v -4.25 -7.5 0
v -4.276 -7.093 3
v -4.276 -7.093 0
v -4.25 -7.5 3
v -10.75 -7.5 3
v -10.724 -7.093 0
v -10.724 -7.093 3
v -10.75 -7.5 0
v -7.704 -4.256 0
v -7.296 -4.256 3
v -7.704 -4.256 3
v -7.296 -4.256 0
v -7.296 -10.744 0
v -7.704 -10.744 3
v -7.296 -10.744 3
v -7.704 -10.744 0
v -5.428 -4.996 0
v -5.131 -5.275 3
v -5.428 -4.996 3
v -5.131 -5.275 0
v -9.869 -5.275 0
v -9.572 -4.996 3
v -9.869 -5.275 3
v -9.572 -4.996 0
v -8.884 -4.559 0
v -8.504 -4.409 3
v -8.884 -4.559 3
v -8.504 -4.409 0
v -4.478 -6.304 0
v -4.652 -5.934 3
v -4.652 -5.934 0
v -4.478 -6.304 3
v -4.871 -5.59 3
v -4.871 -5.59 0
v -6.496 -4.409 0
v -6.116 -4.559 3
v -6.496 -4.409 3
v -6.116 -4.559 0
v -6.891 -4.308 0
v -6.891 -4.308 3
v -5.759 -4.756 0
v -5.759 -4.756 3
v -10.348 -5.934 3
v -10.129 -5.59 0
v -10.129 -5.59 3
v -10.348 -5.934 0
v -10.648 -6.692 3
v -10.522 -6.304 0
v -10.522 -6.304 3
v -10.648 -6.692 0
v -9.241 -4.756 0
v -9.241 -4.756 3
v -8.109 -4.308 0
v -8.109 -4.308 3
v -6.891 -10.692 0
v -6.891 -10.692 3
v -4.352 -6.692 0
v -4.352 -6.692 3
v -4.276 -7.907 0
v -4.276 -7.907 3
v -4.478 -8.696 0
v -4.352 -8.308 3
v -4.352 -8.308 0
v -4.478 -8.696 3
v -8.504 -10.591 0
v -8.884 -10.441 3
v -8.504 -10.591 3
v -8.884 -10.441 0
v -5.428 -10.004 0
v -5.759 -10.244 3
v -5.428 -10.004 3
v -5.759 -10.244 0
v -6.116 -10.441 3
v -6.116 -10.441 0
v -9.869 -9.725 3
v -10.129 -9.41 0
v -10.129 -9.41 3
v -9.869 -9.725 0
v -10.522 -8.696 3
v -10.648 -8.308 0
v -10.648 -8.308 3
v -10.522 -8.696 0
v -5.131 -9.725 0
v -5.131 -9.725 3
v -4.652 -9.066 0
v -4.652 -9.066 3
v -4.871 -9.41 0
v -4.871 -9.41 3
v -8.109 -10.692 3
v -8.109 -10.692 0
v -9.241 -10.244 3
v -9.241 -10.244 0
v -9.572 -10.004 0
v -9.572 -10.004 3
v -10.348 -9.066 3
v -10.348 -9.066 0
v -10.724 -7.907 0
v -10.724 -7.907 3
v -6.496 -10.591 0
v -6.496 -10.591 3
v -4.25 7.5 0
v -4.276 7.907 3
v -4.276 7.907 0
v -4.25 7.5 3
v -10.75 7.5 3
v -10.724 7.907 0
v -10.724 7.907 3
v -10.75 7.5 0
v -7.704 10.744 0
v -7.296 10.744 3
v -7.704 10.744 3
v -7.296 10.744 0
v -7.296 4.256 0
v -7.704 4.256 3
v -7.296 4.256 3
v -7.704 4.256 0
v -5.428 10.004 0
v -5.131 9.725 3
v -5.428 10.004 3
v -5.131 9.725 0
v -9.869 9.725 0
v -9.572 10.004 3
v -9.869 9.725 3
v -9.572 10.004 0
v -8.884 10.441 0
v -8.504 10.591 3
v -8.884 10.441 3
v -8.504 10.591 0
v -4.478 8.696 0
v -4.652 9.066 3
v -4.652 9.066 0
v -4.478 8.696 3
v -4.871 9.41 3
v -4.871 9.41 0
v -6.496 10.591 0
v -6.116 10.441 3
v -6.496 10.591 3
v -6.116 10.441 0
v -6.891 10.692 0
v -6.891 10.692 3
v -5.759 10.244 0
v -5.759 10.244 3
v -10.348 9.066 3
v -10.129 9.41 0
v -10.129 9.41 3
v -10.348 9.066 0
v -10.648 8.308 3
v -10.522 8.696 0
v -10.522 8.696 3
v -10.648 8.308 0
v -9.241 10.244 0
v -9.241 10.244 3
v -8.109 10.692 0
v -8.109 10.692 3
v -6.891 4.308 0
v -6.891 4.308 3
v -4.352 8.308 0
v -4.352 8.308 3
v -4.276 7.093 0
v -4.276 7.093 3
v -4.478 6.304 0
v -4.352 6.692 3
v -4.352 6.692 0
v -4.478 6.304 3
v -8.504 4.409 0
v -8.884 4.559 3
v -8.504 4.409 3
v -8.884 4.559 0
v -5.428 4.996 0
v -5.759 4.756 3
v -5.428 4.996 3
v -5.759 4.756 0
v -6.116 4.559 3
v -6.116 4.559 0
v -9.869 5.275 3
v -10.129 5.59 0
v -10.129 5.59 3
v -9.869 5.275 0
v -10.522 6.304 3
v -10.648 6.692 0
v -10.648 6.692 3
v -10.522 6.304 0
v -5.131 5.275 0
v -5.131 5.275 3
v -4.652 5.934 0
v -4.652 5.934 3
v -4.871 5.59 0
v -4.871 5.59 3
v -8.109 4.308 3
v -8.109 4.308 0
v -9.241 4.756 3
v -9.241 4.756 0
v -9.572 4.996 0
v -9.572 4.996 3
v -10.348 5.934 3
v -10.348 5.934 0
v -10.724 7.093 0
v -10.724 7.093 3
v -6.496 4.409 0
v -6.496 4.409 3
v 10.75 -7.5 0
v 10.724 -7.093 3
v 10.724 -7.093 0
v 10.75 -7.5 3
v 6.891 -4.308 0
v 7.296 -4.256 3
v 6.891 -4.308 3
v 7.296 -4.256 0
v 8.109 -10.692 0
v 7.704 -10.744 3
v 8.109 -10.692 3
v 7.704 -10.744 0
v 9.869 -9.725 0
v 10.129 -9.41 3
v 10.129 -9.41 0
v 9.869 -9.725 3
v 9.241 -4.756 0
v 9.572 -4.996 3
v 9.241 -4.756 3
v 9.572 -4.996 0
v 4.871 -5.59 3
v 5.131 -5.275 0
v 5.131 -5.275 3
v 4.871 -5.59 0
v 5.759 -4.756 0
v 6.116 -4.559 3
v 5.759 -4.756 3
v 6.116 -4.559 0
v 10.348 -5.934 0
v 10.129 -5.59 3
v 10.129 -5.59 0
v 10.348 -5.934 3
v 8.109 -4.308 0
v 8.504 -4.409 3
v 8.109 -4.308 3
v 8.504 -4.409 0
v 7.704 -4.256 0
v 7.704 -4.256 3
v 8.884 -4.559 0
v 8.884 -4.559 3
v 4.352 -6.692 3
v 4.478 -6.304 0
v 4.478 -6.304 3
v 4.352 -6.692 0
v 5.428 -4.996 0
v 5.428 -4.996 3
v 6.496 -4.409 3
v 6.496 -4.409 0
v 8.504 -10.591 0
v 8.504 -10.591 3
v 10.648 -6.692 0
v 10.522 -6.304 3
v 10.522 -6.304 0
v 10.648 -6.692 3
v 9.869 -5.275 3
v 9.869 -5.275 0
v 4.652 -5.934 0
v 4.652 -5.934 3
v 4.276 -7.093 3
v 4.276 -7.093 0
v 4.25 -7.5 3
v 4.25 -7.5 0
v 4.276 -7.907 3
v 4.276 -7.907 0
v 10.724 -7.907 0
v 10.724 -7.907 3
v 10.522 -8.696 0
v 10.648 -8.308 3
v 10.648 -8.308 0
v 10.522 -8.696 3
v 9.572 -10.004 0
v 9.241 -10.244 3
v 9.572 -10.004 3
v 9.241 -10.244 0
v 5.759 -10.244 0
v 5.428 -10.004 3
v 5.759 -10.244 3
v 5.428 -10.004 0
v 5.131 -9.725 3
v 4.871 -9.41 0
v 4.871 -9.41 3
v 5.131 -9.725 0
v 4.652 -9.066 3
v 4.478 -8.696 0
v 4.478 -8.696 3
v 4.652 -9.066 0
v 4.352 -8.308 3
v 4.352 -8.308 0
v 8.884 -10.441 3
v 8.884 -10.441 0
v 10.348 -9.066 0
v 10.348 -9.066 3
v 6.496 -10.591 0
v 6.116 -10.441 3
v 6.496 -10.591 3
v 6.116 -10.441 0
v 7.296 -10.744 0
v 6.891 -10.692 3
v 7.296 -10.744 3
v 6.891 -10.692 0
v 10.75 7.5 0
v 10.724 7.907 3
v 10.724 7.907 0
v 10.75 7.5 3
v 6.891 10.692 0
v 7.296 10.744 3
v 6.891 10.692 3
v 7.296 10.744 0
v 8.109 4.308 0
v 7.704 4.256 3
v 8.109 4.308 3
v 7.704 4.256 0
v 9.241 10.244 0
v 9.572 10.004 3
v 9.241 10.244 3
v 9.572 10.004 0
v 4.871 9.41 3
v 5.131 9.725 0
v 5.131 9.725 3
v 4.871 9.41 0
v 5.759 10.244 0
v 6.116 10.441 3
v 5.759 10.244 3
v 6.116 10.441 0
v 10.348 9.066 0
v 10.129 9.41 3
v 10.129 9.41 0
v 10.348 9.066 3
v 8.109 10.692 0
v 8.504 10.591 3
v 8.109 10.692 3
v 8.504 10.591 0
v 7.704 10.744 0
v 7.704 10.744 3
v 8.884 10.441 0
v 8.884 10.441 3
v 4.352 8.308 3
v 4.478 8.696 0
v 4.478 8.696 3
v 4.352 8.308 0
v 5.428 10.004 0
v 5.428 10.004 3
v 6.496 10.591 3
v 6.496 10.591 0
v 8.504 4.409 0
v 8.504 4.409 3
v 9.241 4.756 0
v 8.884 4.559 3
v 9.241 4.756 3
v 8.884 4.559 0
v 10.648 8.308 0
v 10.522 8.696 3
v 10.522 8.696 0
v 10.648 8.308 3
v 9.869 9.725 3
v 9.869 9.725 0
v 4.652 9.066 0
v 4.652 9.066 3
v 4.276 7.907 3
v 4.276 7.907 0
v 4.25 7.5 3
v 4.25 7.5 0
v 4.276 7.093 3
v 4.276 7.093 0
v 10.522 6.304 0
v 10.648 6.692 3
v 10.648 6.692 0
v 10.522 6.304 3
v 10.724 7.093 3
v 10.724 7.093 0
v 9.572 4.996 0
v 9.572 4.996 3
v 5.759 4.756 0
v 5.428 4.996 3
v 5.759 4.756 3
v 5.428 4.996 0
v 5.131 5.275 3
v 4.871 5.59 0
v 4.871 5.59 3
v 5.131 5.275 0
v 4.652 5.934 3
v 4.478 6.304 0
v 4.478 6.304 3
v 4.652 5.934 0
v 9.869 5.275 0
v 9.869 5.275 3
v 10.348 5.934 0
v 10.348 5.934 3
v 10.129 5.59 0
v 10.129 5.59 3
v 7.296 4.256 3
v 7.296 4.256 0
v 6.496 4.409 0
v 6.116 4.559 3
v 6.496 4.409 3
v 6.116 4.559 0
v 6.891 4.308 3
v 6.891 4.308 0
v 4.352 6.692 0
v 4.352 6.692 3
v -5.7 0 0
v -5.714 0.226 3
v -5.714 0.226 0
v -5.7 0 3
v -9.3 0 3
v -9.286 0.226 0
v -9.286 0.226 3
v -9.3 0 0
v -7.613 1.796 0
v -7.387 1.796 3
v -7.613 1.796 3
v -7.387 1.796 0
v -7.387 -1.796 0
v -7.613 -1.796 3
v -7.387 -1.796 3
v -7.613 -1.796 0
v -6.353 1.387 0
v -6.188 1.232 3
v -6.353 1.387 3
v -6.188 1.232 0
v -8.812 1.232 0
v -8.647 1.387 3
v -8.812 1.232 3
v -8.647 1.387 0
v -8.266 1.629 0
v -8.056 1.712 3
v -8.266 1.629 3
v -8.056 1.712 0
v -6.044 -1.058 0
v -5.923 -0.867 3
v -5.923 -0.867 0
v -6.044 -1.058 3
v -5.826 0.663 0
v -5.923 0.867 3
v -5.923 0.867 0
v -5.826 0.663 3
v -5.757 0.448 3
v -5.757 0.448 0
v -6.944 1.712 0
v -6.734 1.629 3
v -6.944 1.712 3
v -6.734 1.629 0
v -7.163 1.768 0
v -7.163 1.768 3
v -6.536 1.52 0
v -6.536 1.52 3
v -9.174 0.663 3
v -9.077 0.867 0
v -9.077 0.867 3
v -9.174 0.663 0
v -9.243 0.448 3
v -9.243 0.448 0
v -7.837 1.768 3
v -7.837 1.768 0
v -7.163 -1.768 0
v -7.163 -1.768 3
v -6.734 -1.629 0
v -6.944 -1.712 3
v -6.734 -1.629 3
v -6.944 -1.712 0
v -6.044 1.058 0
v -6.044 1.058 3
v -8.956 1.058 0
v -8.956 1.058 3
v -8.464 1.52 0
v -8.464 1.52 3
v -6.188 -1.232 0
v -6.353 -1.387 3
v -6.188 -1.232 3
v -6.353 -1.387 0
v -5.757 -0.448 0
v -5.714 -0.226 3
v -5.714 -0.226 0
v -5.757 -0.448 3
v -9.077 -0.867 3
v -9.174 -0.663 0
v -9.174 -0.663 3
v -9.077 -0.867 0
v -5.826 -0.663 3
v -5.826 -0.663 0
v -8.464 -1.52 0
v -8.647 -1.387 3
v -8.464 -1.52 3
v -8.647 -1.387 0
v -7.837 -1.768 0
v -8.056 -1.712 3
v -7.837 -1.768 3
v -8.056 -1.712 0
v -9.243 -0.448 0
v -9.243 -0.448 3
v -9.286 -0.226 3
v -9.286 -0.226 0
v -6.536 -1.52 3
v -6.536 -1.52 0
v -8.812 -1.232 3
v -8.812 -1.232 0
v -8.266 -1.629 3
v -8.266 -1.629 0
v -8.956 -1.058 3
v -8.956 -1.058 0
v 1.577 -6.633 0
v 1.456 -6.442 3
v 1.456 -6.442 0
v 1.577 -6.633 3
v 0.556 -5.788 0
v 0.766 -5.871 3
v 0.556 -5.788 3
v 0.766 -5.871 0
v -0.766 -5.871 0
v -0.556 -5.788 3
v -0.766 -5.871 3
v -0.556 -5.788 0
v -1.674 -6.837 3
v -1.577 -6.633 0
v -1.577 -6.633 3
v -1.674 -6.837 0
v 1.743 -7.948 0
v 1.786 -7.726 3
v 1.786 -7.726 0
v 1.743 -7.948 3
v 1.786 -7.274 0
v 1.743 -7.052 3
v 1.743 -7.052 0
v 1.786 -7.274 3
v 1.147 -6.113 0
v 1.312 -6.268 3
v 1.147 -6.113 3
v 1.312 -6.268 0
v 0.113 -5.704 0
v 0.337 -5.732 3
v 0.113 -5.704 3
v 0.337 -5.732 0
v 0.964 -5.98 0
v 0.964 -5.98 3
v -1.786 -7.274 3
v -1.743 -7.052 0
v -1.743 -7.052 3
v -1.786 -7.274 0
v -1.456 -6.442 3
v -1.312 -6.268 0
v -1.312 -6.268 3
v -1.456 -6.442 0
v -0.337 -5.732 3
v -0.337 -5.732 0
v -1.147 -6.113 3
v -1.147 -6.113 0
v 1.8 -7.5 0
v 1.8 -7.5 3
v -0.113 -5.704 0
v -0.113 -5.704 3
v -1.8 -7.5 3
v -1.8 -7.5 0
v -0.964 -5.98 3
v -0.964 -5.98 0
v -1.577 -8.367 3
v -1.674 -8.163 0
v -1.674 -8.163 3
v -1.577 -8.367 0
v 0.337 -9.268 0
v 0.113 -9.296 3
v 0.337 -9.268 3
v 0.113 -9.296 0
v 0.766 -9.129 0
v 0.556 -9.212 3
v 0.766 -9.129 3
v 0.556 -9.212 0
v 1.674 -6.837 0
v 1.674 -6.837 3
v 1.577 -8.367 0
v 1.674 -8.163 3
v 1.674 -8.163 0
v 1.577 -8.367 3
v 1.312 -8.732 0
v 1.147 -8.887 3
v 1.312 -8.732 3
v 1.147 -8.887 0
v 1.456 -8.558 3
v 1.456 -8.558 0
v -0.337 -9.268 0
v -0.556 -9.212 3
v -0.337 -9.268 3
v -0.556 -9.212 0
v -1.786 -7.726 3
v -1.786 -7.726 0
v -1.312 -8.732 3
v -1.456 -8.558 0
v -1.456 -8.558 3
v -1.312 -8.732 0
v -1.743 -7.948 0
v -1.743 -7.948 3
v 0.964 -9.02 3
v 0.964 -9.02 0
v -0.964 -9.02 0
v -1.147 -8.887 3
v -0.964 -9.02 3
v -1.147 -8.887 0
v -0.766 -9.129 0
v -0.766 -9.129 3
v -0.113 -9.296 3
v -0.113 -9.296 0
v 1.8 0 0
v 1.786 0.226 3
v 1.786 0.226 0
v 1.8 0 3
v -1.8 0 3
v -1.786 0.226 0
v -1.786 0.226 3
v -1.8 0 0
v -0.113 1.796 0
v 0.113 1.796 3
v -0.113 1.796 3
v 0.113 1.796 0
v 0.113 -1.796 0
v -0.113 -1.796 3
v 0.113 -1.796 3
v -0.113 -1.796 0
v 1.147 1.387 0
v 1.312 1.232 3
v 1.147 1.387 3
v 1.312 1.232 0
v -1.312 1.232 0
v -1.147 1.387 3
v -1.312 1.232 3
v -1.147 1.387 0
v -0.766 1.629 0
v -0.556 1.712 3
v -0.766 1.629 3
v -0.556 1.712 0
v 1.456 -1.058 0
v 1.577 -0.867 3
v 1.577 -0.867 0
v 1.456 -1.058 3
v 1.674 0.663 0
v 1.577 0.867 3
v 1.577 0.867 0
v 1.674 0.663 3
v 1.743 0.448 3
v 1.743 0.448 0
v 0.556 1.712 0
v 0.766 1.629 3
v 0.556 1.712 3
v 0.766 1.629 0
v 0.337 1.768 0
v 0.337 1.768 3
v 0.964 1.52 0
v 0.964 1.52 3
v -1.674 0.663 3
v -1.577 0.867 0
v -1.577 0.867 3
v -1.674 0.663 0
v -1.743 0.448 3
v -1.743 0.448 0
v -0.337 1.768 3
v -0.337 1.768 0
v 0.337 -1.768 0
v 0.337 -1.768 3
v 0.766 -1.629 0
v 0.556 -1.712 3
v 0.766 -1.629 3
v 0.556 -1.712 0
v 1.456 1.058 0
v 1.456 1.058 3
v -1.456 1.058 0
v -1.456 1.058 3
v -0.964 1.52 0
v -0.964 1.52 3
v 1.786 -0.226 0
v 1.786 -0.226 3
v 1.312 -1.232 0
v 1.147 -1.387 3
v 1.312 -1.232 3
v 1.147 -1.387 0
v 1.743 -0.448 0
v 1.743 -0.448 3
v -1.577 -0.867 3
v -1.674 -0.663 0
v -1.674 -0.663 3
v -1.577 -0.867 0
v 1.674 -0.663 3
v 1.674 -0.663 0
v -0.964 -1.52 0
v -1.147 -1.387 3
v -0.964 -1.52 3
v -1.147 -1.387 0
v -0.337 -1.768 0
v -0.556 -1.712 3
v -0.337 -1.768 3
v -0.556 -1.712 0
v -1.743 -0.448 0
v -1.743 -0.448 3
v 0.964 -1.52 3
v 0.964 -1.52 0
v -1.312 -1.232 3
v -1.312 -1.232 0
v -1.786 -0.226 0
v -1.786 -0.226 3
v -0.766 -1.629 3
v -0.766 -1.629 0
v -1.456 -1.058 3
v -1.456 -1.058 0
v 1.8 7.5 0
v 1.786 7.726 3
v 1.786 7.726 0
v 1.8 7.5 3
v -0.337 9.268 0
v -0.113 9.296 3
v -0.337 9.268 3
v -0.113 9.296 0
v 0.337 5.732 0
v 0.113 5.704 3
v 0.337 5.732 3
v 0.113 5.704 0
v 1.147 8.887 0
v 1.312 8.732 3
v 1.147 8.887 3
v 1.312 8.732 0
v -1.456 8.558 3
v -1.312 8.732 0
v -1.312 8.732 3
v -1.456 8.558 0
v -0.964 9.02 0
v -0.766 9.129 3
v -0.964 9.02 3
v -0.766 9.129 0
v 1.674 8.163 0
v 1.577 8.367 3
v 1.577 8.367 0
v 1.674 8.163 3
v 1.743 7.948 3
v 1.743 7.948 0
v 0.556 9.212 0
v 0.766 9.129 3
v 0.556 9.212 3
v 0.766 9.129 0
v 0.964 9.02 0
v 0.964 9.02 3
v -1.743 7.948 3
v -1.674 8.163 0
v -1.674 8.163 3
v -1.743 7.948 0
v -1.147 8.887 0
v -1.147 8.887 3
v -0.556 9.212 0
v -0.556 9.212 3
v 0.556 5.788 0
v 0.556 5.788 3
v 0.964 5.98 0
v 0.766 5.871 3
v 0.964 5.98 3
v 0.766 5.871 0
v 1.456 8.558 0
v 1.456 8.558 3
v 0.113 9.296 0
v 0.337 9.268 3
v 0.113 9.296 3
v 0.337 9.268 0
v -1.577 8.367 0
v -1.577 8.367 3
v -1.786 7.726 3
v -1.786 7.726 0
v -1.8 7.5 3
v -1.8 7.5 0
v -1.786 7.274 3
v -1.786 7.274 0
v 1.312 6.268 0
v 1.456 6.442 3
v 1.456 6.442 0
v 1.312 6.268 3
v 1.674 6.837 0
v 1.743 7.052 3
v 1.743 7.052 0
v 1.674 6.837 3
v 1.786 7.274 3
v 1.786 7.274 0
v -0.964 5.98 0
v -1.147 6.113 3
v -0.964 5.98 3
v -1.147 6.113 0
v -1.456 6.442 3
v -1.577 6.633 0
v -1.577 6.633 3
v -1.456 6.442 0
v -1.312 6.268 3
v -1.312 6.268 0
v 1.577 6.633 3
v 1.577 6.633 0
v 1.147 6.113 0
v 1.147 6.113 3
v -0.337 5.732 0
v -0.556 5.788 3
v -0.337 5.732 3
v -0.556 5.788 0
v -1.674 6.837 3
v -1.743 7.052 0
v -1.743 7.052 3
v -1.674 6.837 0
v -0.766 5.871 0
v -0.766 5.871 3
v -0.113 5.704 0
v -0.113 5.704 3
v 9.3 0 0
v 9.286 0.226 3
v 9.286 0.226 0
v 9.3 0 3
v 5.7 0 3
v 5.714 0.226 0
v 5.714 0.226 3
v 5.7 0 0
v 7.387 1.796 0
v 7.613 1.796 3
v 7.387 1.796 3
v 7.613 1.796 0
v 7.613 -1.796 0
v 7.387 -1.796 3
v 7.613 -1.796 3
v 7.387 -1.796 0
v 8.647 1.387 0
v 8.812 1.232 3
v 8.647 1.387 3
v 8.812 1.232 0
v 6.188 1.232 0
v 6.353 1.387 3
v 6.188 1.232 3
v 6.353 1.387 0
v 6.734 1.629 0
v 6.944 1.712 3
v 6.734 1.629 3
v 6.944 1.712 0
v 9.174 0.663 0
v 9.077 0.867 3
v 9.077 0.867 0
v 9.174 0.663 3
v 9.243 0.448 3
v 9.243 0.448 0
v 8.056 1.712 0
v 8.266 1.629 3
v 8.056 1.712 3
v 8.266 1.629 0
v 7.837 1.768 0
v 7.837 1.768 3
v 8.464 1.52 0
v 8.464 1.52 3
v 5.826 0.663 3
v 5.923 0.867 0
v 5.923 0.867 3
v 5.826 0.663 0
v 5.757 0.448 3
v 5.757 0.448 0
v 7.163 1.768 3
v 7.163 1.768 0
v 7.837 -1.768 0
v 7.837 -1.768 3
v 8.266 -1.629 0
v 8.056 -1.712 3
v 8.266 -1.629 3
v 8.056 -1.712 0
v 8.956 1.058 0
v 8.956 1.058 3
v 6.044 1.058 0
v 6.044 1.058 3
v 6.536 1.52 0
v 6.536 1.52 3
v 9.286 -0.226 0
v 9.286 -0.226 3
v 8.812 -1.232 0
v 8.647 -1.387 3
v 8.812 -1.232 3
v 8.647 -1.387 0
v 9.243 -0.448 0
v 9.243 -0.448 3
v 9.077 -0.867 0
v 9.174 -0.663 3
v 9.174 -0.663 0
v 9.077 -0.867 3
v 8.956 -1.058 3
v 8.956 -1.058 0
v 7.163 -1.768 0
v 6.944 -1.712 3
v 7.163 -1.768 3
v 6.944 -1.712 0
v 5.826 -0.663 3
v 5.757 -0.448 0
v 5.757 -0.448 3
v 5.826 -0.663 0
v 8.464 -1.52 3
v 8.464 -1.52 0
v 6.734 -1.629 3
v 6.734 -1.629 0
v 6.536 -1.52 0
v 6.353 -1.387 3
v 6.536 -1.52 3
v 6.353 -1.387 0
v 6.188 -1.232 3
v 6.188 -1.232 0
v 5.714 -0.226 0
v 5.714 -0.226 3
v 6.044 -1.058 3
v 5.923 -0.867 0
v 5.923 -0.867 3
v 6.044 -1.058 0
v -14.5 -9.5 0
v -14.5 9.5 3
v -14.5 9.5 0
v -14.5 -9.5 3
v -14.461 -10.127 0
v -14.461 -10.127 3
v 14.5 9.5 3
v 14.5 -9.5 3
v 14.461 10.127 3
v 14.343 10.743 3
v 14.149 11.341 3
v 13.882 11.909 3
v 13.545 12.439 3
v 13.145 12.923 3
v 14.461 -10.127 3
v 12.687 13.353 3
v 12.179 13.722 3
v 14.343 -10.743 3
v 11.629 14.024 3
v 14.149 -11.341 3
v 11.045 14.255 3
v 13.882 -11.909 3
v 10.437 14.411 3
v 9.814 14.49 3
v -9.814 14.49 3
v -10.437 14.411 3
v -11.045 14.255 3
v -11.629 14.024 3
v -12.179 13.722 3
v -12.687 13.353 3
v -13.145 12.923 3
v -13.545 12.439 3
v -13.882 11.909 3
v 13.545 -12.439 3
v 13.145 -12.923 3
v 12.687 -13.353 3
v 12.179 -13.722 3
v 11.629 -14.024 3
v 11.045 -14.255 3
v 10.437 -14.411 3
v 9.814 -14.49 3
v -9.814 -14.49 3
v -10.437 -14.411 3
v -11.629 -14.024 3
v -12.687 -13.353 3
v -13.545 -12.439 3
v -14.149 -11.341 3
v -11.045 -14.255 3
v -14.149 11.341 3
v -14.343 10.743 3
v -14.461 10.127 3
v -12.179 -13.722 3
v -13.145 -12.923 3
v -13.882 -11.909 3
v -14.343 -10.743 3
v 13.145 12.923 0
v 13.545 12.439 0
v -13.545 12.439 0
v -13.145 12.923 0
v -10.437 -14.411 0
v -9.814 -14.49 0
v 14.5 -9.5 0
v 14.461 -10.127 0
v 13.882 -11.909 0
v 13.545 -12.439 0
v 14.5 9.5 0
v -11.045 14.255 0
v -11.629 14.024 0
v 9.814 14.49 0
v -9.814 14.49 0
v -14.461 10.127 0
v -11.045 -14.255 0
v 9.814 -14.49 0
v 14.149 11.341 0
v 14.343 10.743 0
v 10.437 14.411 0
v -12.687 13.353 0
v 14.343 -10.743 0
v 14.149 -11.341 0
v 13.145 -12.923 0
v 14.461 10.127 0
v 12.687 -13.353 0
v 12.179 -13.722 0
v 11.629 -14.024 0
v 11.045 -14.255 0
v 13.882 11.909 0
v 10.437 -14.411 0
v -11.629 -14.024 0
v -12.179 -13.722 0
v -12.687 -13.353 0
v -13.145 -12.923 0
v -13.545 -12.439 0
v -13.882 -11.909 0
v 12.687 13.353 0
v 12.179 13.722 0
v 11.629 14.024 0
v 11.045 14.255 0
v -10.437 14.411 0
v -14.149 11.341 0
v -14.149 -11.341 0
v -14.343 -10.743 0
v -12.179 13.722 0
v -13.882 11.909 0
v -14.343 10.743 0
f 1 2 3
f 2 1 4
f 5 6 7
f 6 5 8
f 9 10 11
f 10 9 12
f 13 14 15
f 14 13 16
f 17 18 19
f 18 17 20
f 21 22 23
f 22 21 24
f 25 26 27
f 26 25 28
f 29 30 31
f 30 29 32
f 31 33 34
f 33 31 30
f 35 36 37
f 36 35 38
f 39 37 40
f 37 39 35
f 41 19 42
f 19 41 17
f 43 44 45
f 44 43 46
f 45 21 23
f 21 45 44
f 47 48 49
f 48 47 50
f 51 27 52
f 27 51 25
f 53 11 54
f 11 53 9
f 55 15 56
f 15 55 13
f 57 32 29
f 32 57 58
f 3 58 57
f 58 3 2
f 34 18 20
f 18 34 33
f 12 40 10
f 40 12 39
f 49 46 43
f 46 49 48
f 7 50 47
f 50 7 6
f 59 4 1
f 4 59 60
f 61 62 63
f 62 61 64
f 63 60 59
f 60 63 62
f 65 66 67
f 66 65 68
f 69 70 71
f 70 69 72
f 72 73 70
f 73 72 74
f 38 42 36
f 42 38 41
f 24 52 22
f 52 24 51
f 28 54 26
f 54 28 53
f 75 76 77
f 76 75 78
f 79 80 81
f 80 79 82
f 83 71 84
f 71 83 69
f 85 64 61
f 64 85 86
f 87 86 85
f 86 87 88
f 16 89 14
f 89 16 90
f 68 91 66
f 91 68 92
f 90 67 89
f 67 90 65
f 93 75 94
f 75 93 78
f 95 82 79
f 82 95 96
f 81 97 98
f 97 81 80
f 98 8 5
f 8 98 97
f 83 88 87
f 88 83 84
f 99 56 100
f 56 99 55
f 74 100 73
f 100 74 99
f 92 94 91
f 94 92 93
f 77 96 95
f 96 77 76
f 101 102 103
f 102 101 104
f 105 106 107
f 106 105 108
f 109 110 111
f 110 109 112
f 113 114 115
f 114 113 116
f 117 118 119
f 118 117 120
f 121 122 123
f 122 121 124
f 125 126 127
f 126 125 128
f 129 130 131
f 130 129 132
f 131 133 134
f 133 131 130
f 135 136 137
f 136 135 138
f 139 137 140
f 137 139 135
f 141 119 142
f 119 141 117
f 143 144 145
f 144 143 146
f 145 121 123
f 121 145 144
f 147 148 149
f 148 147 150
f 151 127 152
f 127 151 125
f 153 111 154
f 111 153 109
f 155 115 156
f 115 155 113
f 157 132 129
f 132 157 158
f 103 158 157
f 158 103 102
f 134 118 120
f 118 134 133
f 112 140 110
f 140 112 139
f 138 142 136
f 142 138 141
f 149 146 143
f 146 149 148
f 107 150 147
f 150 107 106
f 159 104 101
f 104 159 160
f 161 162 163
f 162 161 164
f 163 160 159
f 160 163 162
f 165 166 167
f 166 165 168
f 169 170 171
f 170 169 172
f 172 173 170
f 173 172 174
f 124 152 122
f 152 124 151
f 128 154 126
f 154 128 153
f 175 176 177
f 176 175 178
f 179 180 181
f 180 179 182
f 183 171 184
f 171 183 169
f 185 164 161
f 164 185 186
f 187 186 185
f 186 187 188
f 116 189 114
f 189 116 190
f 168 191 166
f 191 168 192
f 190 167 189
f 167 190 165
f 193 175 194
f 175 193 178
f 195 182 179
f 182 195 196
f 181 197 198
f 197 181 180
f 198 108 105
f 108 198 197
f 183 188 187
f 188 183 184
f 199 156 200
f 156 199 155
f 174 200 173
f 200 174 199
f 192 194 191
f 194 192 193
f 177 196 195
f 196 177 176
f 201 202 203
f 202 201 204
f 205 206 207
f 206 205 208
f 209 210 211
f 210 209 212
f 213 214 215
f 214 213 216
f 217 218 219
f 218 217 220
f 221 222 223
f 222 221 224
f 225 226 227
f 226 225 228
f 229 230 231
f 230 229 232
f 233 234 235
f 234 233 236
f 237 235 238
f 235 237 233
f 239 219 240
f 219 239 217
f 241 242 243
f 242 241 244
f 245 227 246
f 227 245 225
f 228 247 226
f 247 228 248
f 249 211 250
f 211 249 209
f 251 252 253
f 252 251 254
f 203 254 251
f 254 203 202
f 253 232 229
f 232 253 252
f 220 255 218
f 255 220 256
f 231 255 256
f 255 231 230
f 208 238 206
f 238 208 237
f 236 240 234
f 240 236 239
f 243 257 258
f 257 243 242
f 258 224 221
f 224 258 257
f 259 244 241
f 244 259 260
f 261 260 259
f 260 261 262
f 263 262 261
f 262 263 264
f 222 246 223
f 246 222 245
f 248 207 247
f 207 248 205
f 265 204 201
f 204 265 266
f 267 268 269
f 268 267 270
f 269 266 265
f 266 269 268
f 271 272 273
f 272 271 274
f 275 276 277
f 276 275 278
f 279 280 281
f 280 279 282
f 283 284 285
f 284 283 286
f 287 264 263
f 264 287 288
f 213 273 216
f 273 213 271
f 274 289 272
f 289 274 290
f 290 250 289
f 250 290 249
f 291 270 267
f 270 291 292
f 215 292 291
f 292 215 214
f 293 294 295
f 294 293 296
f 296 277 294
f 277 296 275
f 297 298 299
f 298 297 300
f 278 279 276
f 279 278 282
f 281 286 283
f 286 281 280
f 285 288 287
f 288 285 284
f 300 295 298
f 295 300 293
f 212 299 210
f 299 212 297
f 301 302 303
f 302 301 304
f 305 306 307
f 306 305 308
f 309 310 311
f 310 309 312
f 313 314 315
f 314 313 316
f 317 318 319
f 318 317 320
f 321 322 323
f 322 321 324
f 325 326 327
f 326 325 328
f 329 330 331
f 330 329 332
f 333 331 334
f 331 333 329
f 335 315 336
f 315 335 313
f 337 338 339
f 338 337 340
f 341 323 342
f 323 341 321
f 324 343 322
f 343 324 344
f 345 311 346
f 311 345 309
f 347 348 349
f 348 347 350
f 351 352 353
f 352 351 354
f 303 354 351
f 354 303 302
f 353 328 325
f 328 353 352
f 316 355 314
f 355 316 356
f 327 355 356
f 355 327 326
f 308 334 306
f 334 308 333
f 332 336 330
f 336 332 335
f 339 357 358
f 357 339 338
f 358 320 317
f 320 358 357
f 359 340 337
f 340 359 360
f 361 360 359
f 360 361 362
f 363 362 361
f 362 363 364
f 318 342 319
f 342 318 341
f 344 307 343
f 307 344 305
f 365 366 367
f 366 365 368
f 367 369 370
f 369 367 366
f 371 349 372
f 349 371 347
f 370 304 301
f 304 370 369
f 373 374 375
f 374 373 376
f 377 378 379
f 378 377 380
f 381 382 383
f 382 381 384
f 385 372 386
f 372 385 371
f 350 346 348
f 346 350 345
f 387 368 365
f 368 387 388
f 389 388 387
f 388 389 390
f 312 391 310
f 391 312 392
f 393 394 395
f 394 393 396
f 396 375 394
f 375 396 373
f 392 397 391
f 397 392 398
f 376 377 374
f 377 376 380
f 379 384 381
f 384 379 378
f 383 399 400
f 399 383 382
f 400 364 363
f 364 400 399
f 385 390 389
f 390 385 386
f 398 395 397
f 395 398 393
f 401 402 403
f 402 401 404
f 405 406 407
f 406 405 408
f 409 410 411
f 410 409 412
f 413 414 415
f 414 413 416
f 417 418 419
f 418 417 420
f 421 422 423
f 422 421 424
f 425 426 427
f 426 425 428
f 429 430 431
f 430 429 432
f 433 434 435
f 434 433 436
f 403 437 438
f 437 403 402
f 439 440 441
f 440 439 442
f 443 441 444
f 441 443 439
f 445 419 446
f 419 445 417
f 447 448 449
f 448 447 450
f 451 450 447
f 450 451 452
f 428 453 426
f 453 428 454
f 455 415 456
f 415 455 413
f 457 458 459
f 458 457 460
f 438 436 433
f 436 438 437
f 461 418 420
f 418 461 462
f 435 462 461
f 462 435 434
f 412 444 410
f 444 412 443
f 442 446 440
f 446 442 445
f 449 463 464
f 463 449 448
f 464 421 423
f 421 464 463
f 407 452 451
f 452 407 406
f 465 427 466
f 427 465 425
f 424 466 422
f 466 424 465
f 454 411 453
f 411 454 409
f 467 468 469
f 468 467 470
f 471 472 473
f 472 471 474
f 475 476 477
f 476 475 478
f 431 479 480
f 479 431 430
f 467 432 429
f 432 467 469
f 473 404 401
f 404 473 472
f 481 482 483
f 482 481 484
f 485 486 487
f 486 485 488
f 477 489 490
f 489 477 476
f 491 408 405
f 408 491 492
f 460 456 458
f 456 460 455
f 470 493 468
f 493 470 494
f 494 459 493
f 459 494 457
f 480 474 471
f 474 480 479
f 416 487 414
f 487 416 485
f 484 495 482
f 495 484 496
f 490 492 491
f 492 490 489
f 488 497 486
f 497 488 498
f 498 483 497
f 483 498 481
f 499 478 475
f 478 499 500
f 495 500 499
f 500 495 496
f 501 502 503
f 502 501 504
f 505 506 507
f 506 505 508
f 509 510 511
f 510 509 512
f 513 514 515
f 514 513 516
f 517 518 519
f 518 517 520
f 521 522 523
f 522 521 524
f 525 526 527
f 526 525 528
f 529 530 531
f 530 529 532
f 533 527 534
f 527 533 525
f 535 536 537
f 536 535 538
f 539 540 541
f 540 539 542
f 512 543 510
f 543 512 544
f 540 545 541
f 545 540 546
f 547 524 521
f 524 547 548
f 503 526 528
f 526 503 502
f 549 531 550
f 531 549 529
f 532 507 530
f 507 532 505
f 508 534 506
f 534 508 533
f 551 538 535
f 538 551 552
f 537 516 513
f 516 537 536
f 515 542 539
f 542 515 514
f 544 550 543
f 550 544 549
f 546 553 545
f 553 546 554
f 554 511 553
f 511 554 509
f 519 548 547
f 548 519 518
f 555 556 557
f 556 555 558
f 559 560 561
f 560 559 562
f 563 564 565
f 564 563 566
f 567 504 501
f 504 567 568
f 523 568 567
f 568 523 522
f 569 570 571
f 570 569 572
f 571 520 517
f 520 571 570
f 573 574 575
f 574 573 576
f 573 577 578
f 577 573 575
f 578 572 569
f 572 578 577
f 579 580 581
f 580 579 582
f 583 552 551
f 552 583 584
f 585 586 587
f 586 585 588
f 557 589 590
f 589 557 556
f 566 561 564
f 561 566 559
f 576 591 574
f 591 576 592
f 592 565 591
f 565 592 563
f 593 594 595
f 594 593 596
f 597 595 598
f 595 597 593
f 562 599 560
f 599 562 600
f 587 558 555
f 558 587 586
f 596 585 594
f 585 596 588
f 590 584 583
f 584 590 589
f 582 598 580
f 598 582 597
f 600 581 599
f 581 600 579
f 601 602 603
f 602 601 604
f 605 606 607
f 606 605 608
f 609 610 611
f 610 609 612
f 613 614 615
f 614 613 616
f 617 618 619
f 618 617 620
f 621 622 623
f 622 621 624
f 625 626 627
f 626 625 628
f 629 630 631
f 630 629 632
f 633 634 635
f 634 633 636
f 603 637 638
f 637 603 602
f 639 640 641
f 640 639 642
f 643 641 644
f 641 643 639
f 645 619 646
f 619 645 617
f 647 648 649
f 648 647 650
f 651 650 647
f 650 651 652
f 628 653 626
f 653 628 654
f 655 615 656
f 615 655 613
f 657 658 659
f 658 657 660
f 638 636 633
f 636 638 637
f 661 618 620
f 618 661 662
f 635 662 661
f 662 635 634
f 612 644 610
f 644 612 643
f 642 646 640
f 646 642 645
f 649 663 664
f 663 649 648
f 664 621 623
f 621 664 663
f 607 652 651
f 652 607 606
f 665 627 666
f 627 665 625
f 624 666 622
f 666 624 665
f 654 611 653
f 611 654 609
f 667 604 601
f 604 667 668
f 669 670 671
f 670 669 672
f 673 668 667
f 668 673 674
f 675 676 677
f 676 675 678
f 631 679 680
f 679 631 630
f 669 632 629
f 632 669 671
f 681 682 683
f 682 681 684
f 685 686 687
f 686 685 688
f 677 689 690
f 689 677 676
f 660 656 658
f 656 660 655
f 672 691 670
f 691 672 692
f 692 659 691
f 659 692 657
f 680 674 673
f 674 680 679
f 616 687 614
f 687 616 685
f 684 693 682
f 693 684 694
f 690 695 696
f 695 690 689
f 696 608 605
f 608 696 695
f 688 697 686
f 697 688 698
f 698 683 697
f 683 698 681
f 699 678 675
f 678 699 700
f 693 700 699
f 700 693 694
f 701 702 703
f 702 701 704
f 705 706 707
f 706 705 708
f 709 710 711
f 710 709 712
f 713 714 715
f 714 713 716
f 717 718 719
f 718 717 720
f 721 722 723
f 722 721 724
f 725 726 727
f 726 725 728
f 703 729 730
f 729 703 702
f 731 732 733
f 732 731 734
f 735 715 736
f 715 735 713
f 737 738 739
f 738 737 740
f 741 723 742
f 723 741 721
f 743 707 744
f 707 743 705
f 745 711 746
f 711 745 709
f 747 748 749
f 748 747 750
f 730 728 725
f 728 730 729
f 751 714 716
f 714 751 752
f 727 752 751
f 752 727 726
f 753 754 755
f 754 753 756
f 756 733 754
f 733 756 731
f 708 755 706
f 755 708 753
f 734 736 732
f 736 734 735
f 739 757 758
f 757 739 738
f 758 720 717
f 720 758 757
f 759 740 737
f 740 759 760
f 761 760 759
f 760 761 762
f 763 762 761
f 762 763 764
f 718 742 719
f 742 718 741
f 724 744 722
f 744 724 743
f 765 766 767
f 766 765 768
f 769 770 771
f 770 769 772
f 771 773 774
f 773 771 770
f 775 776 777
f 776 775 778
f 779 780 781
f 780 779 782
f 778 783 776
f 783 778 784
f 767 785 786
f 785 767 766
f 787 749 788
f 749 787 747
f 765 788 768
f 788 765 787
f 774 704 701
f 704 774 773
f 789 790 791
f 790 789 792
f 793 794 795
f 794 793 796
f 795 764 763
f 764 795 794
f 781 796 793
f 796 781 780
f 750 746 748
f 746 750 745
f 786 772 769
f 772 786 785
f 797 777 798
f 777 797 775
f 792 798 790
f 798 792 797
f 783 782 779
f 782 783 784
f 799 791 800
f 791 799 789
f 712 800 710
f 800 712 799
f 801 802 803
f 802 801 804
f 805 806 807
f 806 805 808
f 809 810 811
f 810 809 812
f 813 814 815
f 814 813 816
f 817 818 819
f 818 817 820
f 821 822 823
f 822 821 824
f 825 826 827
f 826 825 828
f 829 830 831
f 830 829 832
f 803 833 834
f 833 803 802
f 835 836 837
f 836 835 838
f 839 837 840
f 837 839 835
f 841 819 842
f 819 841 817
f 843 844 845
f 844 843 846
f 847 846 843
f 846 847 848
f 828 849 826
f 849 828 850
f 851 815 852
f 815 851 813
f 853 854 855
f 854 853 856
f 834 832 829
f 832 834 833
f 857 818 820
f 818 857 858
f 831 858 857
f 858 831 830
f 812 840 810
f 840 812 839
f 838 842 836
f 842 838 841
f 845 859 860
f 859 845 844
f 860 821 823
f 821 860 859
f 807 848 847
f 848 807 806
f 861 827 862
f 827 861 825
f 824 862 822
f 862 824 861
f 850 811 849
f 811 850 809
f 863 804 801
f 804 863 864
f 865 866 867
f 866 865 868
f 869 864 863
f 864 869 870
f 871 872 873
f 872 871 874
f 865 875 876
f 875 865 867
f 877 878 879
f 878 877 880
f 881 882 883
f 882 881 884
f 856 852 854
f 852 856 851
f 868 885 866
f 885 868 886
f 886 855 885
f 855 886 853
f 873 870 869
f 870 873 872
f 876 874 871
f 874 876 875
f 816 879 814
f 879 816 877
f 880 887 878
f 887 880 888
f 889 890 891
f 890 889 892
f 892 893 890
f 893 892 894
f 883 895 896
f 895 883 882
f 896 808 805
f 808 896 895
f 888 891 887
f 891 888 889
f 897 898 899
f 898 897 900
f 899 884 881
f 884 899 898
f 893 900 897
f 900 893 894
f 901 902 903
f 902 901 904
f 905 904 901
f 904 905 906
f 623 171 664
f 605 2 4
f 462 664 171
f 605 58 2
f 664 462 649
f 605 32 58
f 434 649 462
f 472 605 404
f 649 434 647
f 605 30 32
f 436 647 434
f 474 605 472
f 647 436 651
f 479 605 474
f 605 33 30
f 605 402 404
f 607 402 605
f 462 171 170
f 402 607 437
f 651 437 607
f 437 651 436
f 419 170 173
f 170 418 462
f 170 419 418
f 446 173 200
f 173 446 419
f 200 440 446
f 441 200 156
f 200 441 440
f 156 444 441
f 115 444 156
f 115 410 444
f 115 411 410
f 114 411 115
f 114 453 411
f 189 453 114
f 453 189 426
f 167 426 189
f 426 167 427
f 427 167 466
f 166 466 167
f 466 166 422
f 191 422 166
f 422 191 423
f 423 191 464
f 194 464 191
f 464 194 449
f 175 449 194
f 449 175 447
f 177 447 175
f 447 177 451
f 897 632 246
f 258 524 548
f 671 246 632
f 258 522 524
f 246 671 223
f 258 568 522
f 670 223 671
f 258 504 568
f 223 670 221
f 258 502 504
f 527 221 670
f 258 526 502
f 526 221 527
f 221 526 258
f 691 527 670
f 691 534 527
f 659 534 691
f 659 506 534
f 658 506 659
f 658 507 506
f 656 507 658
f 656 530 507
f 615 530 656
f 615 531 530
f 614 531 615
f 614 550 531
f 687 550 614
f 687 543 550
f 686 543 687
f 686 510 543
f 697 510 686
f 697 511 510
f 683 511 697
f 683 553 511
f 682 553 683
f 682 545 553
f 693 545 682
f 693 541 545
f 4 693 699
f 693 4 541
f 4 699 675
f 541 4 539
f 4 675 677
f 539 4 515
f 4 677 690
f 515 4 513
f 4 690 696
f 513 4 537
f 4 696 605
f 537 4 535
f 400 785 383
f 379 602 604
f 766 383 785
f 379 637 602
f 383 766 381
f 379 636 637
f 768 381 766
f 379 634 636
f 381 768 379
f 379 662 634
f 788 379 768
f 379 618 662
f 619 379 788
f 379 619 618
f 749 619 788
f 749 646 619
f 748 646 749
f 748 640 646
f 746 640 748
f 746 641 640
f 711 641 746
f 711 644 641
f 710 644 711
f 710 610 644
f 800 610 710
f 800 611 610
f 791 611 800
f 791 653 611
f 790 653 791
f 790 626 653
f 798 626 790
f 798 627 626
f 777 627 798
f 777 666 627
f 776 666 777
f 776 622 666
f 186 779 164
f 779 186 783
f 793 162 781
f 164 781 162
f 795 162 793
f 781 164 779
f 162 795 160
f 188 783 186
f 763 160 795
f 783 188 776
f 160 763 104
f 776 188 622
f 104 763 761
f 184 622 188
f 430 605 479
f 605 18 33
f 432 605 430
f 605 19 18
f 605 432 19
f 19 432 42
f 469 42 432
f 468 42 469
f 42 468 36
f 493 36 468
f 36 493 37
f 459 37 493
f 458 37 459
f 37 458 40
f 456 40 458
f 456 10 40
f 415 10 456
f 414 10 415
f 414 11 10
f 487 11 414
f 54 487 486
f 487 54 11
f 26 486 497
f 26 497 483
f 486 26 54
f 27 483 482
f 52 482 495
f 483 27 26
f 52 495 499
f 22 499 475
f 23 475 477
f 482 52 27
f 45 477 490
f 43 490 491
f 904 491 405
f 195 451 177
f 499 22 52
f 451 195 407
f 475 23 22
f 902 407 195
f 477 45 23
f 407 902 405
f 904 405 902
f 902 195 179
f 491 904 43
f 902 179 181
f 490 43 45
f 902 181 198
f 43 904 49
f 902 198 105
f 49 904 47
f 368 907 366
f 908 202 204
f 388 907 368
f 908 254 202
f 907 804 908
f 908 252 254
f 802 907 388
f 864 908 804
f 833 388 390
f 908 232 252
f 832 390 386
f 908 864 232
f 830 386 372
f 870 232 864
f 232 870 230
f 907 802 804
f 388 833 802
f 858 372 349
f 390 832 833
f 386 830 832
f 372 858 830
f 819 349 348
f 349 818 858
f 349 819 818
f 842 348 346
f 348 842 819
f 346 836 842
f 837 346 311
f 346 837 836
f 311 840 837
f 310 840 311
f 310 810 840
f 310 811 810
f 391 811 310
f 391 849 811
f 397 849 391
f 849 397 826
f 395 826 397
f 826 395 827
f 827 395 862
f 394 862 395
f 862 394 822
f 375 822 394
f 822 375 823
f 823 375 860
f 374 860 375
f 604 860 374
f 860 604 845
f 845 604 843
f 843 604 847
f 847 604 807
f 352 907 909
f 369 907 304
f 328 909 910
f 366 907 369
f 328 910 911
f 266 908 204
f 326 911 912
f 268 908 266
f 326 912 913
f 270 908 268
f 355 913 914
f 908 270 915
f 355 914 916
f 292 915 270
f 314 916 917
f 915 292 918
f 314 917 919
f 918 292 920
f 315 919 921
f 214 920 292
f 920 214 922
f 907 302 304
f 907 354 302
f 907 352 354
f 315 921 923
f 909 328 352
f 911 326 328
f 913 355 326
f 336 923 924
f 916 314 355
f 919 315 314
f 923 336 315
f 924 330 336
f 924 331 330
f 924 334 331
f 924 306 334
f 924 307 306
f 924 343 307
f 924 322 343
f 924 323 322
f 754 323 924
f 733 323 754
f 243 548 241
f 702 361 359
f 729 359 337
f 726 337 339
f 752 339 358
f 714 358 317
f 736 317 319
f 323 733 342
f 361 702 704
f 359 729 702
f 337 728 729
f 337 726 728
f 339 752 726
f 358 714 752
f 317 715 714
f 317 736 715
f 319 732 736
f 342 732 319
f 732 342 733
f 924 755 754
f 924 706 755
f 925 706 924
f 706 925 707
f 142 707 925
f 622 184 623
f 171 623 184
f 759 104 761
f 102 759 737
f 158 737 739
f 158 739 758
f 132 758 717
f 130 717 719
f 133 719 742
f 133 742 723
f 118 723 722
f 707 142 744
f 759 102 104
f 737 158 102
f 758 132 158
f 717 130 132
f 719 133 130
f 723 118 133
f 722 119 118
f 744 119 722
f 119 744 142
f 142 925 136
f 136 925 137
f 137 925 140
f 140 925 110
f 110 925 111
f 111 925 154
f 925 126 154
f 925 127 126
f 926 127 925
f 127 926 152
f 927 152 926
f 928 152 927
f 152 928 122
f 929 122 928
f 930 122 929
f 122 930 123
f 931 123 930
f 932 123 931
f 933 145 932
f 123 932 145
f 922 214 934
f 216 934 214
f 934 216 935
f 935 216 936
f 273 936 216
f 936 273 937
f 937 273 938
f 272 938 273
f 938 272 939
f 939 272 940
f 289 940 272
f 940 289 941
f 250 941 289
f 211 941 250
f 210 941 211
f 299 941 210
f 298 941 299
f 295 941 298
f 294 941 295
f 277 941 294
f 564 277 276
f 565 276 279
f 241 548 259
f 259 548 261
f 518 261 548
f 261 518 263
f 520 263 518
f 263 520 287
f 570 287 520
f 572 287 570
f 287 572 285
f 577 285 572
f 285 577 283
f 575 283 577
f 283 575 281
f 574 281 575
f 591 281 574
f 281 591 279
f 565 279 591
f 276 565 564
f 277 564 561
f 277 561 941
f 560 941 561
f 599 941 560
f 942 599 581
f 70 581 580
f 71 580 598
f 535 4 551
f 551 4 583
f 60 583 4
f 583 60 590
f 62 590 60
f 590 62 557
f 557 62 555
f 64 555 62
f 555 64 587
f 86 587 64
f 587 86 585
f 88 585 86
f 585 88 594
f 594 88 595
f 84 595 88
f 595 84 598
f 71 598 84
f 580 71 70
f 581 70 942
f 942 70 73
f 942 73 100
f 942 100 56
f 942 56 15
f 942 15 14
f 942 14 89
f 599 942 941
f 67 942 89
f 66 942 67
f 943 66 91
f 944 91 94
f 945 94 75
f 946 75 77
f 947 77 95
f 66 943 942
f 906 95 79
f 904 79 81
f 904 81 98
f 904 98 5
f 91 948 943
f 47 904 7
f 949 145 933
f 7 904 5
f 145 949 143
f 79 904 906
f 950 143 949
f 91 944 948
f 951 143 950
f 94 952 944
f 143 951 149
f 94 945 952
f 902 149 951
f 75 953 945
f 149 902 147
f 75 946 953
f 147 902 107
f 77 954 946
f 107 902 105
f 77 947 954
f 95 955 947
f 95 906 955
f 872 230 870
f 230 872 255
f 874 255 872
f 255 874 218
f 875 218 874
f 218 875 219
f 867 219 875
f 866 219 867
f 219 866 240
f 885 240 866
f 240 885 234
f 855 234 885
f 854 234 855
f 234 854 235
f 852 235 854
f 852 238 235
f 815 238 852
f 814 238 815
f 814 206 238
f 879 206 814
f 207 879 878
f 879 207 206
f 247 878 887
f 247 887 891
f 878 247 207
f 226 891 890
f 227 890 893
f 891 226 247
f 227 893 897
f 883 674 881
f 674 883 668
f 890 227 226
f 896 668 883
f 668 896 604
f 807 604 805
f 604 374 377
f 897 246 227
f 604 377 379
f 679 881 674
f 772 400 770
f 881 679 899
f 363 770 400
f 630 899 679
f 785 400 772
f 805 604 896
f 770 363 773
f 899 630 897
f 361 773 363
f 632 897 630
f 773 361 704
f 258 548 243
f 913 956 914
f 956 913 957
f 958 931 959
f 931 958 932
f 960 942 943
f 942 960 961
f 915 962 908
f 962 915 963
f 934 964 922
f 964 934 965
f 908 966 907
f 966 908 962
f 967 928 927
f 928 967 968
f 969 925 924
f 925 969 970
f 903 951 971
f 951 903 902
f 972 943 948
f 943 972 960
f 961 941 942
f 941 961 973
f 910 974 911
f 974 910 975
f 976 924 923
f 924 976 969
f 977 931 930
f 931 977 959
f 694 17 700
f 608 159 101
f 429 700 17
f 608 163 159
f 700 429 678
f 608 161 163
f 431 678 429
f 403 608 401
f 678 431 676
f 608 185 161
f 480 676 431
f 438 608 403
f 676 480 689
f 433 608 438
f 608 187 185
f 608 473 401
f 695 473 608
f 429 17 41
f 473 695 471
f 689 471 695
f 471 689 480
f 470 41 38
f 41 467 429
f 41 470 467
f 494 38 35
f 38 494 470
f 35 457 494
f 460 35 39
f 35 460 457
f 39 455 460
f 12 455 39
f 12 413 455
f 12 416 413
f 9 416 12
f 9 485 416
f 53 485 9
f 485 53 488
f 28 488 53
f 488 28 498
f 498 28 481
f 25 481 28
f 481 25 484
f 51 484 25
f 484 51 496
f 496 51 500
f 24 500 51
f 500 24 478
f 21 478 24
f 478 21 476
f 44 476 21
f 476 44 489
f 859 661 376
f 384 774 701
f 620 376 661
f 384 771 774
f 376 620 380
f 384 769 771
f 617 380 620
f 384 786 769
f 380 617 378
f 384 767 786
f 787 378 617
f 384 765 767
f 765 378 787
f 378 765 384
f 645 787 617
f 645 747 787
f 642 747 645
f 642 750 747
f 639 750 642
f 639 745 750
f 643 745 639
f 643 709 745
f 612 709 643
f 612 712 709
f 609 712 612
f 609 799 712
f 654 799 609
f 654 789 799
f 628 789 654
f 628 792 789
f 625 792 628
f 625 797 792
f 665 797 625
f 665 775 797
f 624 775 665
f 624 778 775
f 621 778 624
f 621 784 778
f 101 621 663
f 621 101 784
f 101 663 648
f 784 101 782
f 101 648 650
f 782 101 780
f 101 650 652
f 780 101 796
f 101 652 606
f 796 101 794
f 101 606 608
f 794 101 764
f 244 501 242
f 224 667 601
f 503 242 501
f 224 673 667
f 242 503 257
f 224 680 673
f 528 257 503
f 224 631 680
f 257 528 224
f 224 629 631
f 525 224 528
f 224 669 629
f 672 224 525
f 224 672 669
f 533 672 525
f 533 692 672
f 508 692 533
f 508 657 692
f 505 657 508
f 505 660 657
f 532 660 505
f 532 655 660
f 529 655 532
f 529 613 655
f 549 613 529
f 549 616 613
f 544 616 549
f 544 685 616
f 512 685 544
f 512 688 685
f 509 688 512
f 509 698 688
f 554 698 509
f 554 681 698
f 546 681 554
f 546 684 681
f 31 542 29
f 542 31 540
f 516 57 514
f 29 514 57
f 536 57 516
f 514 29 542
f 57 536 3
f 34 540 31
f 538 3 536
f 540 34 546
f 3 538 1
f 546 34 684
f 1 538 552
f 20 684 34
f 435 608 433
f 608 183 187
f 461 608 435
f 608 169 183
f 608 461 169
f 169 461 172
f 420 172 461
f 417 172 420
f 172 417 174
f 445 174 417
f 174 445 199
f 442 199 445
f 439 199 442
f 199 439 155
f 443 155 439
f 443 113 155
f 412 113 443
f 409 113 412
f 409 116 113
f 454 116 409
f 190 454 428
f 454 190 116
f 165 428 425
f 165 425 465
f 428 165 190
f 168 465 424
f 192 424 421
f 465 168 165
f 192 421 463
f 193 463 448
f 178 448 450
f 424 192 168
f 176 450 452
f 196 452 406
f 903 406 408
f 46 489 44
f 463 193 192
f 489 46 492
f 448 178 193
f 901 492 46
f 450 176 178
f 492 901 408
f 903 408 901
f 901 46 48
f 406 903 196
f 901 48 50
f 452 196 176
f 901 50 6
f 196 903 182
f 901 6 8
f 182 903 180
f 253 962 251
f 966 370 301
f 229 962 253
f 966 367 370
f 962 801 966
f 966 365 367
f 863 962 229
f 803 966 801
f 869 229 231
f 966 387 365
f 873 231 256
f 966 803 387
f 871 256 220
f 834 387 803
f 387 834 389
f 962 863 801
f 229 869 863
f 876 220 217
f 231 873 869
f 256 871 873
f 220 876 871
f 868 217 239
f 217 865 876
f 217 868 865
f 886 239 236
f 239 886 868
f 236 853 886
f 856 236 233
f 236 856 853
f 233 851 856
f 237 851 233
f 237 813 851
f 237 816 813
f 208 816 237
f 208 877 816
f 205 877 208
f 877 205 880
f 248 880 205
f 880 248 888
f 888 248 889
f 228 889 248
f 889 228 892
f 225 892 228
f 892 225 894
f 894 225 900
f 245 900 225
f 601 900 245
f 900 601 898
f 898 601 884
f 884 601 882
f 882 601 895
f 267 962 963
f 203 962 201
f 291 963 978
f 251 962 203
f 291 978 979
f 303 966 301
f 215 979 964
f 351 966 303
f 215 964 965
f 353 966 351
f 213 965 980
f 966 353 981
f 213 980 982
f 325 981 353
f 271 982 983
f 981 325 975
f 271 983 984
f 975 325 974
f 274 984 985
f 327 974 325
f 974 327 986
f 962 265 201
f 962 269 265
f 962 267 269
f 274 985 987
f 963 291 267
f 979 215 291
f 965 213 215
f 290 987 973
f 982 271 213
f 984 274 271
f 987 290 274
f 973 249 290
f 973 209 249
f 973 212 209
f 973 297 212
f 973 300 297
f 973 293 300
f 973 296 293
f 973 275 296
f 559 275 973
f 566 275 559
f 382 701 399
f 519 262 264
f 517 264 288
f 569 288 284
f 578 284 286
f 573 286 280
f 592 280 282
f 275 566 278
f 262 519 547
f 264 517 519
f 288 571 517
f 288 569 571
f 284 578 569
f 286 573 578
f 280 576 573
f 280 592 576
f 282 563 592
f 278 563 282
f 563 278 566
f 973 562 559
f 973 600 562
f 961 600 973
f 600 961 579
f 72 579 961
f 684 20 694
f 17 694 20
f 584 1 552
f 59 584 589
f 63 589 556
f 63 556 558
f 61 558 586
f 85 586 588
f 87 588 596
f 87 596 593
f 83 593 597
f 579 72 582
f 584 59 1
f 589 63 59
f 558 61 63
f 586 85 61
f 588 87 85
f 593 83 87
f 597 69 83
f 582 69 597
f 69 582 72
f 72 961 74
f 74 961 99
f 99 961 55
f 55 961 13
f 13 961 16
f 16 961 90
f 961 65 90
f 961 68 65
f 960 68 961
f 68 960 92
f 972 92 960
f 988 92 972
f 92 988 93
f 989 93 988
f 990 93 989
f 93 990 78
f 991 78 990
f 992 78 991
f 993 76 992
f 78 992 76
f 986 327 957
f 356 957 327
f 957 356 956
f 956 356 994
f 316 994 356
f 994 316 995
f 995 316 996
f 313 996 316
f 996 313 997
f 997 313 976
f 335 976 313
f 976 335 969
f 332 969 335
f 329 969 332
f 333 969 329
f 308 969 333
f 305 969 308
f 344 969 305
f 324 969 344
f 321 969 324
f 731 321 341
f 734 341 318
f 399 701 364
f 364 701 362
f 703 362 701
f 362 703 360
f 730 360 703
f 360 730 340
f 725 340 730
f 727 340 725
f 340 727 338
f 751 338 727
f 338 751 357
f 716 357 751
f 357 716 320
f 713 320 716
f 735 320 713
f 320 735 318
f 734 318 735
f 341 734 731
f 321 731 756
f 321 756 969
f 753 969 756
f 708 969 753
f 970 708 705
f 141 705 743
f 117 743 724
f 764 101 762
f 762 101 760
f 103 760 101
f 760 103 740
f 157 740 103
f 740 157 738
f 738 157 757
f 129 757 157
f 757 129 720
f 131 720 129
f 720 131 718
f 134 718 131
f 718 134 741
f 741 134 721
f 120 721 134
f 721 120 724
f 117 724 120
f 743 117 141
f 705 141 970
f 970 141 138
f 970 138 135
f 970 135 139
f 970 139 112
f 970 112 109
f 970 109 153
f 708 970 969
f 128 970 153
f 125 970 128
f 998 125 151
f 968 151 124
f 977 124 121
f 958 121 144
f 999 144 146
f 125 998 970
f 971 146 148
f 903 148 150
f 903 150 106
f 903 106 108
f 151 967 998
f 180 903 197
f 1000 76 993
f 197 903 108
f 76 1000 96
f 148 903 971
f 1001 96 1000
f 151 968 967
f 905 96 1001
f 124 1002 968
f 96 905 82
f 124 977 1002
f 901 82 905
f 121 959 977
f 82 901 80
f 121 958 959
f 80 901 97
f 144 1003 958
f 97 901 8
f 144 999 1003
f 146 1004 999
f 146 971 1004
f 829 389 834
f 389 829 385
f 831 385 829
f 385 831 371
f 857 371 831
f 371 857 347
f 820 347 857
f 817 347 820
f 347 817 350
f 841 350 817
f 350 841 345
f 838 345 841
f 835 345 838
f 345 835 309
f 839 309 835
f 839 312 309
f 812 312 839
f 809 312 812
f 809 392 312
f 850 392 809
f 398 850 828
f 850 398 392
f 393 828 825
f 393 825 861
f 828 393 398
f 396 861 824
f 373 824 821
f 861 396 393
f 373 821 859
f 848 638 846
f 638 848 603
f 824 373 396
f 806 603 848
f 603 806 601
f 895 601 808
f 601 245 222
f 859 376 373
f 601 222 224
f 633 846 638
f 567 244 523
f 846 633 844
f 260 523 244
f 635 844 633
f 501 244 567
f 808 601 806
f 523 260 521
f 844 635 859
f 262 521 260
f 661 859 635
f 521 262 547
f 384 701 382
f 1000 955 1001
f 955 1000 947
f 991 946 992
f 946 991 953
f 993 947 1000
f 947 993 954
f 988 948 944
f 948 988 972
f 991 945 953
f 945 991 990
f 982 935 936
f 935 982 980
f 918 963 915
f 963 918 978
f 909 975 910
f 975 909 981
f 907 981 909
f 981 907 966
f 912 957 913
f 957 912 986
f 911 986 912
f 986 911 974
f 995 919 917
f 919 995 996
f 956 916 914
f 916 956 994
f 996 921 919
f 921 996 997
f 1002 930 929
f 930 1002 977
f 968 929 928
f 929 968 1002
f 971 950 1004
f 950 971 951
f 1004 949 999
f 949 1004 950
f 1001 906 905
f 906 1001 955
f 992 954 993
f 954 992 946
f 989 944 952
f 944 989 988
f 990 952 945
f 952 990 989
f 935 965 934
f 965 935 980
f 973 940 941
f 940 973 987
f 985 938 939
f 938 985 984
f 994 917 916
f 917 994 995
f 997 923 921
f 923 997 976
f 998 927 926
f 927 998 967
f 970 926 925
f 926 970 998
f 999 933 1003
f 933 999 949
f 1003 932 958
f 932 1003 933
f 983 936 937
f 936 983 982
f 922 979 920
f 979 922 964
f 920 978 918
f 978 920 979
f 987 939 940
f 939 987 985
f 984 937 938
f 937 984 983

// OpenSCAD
$fn = 50;


difference() {
	union() {
		translate(v = [0, 0, 0]) {
			rotate(a = [0, 0, 0]) {
				hull() {
					translate(v = [-9.5000000000, 9.5000000000, 0]) {
						rotate(a = [0, 0, 0]) {
							translate(v = [0, 0, 0]) {
								rotate(a = [0, 0, 0]) {
									cylinder(h = 3, r = 5);
								}
							}
						}
					}
					translate(v = [9.5000000000, 9.5000000000, 0]) {
						rotate(a = [0, 0, 0]) {
							translate(v = [0, 0, 0]) {
								rotate(a = [0, 0, 0]) {
									cylinder(h = 3, r = 5);
								}
							}
						}
					}
					translate(v = [-9.5000000000, -9.5000000000, 0]) {
						rotate(a = [0, 0, 0]) {
							translate(v = [0, 0, 0]) {
								rotate(a = [0, 0, 0]) {
									cylinder(h = 3, r = 5);
								}
							}
						}
					}
					translate(v = [9.5000000000, -9.5000000000, 0]) {
						rotate(a = [0, 0, 0]) {
							translate(v = [0, 0, 0]) {
								rotate(a = [0, 0, 0]) {
									cylinder(h = 3, r = 5);
								}
							}
						}
					}
				}
			}
		}
	}
	union() {
		translate(v = [-7.5000000000, -7.5000000000, 0]) {
			rotate(a = [0, 0, 0]) {
				translate(v = [0, 0, -50]) {
					rotate(a = [0, 0, 0]) {
						cylinder(h = 100, r = 3.2500000000);
					}
				}
			}
		}
		translate(v = [-7.5000000000, 7.5000000000, 0]) {
			rotate(a = [0, 0, 0]) {
				translate(v = [0, 0, -50]) {
					rotate(a = [0, 0, 0]) {
						cylinder(h = 100, r = 3.2500000000);
					}
				}
			}
		}
		translate(v = [7.5000000000, -7.5000000000, 0]) {
			rotate(a = [0, 0, 0]) {
				translate(v = [0, 0, -50]) {
					rotate(a = [0, 0, 0]) {
						cylinder(h = 100, r = 3.2500000000);
					}
				}
			}
		}
		translate(v = [7.5000000000, 7.5000000000, 0]) {
			rotate(a = [0, 0, 0]) {
				translate(v = [0, 0, -50]) {
					rotate(a = [0, 0, 0]) {
						cylinder(h = 100, r = 3.2500000000);
					}
				}
			}
		}
		translate(v = [-7.5000000000, -7.5000000000, 0]) {
			rotate(a = [0, 0, 0]) {
				translate(v = [0, 0, -50]) {
					rotate(a = [0, 0, 0]) {
						cylinder(h = 100, r = 1.8000000000);
					}
				}
			}
		}
		translate(v = [-7.5000000000, 0.0000000000, 0]) {
			rotate(a = [0, 0, 0]) {
				translate(v = [0, 0, -50]) {
					rotate(a = [0, 0, 0]) {
						cylinder(h = 100, r = 1.8000000000);
					}
				}
			}
		}
		translate(v = [-7.5000000000, 7.5000000000, 0]) {
			rotate(a = [0, 0, 0]) {
				translate(v = [0, 0, -50]) {
					rotate(a = [0, 0, 0]) {
						cylinder(h = 100, r = 1.8000000000);
					}
				}
			}
		}
		translate(v = [0.0000000000, -7.5000000000, 0]) {
			rotate(a = [0, 0, 0]) {
				translate(v = [0, 0, -50]) {
					rotate(a = [0, 0, 0]) {
						cylinder(h = 100, r = 1.8000000000);
					}
				}
			}
		}
		translate(v = [0.0000000000, 0.0000000000, 0]) {
			rotate(a = [0, 0, 0]) {
				translate(v = [0, 0, -50]) {
					rotate(a = [0, 0, 0]) {
						cylinder(h = 100, r = 1.8000000000);
					}
				}
			}
		}
		translate(v = [0.0000000000, 7.5000000000, 0]) {
			rotate(a = [0, 0, 0]) {
				translate(v = [0, 0, -50]) {
					rotate(a = [0, 0, 0]) {
						cylinder(h = 100, r = 1.8000000000);
					}
				}
			}
		}
		translate(v = [7.5000000000, -7.5000000000, 0]) {
			rotate(a = [0, 0, 0]) {
				translate(v = [0, 0, -50]) {
					rotate(a = [0, 0, 0]) {
						cylinder(h = 100, r = 1.8000000000);
					}
				}
			}
		}
		translate(v = [7.5000000000, 0.0000000000, 0]) {
			rotate(a = [0, 0, 0]) {
				translate(v = [0, 0, -50]) {
					rotate(a = [0, 0, 0]) {
						cylinder(h = 100, r = 1.8000000000);
					}
				}
			}
		}
		translate(v = [7.5000000000, 7.5000000000, 0]) {
			rotate(a = [0, 0, 0]) {
				translate(v = [0, 0, -50]) {
					rotate(a = [0, 0, 0]) {
						cylinder(h = 100, r = 1.8000000000);
					}
				}
			}
		}
	}
}
